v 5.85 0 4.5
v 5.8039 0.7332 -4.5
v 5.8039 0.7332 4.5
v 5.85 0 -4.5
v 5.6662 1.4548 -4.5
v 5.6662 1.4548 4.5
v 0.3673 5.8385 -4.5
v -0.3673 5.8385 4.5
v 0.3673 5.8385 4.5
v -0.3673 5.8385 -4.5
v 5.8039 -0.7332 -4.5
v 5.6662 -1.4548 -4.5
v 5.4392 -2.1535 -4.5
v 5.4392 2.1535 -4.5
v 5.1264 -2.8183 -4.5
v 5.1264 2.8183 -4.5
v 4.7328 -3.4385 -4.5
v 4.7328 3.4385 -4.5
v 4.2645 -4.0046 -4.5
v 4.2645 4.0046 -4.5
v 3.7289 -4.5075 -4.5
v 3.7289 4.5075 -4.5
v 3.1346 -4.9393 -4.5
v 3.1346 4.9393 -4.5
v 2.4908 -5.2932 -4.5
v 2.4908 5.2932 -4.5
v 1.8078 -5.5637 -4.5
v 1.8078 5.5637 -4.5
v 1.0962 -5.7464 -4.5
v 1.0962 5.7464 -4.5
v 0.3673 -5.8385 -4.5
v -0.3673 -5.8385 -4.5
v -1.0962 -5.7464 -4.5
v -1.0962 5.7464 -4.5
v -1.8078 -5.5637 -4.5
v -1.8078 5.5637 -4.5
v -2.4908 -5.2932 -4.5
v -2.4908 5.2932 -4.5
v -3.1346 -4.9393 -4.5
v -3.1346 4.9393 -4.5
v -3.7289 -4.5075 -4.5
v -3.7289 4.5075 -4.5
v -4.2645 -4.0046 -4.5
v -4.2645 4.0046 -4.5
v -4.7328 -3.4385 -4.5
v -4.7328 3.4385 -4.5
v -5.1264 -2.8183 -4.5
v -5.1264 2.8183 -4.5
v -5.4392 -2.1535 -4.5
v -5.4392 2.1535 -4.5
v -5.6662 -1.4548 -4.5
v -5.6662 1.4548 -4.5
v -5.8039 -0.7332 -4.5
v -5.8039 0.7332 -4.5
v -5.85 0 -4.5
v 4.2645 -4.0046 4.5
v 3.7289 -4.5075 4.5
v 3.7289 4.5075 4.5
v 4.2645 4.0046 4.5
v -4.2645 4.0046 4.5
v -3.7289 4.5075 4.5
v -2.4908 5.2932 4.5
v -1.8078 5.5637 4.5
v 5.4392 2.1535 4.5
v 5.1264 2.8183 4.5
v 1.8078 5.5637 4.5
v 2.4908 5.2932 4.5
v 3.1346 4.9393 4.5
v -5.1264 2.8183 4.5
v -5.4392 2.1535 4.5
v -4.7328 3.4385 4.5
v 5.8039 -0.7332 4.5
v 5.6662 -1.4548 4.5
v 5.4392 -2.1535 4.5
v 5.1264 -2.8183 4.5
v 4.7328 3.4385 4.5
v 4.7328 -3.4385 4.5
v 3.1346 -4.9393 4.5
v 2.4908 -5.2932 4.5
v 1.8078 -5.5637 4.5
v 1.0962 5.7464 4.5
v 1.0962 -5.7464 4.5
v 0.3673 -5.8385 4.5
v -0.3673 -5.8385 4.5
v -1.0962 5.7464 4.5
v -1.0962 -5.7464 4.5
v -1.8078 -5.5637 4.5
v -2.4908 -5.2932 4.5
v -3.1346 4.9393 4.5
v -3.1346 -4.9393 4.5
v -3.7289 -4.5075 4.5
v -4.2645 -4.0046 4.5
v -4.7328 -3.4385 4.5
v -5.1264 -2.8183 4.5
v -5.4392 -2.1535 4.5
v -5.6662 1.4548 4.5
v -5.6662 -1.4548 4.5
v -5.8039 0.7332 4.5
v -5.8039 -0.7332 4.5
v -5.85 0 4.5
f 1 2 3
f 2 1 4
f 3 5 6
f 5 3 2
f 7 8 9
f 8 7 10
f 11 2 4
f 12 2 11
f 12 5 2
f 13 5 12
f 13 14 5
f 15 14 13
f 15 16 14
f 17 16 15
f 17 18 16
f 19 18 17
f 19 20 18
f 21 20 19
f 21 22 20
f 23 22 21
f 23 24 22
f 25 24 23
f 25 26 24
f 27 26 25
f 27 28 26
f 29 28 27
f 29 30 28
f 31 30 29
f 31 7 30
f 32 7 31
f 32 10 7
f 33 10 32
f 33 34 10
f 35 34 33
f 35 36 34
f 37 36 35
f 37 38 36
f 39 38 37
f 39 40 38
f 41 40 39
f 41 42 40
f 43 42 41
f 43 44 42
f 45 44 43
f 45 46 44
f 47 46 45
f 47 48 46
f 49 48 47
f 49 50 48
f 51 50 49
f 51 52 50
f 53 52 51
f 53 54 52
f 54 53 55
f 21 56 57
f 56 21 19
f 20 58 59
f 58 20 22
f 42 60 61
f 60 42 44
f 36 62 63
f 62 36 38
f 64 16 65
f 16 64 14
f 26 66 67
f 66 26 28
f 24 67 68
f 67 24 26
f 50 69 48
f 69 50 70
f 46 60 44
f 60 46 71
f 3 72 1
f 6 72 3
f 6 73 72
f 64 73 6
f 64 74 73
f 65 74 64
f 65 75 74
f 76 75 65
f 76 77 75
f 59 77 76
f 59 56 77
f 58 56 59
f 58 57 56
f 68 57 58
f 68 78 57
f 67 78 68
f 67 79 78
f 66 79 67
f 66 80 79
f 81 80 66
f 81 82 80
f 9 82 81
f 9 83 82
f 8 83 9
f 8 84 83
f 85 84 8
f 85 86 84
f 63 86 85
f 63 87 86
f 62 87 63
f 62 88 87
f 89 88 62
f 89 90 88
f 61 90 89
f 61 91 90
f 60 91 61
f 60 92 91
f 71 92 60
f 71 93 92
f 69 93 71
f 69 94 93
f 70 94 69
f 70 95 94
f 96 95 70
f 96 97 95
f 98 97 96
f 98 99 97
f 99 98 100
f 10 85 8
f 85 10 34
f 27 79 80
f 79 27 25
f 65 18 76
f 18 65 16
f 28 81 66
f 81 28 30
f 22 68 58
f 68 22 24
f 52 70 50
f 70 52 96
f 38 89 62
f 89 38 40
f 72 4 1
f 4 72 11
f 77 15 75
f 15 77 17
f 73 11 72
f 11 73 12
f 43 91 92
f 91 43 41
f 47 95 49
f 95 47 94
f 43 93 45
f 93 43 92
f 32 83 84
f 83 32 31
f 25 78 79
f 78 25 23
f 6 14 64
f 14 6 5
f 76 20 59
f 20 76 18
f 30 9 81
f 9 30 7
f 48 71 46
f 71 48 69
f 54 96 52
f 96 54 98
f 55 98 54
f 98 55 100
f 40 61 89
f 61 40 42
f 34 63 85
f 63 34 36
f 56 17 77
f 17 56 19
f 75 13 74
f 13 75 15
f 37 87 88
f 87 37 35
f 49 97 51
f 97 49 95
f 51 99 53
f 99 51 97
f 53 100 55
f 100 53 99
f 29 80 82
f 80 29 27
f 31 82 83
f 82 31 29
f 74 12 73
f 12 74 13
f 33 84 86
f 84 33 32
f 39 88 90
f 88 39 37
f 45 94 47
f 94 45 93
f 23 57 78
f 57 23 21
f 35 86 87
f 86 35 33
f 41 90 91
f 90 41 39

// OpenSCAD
$fn = 50;


difference() {
	union() {
		translate(v = [0, 0, -4.5000000000]) {
			cylinder(h = 9, r = 5.8500000000);
		}
	}
	union() {
		translate(v = [0, 0, -100.0000000000]) {
			cylinder(h = 200, r = 0);
		}
	}
}
